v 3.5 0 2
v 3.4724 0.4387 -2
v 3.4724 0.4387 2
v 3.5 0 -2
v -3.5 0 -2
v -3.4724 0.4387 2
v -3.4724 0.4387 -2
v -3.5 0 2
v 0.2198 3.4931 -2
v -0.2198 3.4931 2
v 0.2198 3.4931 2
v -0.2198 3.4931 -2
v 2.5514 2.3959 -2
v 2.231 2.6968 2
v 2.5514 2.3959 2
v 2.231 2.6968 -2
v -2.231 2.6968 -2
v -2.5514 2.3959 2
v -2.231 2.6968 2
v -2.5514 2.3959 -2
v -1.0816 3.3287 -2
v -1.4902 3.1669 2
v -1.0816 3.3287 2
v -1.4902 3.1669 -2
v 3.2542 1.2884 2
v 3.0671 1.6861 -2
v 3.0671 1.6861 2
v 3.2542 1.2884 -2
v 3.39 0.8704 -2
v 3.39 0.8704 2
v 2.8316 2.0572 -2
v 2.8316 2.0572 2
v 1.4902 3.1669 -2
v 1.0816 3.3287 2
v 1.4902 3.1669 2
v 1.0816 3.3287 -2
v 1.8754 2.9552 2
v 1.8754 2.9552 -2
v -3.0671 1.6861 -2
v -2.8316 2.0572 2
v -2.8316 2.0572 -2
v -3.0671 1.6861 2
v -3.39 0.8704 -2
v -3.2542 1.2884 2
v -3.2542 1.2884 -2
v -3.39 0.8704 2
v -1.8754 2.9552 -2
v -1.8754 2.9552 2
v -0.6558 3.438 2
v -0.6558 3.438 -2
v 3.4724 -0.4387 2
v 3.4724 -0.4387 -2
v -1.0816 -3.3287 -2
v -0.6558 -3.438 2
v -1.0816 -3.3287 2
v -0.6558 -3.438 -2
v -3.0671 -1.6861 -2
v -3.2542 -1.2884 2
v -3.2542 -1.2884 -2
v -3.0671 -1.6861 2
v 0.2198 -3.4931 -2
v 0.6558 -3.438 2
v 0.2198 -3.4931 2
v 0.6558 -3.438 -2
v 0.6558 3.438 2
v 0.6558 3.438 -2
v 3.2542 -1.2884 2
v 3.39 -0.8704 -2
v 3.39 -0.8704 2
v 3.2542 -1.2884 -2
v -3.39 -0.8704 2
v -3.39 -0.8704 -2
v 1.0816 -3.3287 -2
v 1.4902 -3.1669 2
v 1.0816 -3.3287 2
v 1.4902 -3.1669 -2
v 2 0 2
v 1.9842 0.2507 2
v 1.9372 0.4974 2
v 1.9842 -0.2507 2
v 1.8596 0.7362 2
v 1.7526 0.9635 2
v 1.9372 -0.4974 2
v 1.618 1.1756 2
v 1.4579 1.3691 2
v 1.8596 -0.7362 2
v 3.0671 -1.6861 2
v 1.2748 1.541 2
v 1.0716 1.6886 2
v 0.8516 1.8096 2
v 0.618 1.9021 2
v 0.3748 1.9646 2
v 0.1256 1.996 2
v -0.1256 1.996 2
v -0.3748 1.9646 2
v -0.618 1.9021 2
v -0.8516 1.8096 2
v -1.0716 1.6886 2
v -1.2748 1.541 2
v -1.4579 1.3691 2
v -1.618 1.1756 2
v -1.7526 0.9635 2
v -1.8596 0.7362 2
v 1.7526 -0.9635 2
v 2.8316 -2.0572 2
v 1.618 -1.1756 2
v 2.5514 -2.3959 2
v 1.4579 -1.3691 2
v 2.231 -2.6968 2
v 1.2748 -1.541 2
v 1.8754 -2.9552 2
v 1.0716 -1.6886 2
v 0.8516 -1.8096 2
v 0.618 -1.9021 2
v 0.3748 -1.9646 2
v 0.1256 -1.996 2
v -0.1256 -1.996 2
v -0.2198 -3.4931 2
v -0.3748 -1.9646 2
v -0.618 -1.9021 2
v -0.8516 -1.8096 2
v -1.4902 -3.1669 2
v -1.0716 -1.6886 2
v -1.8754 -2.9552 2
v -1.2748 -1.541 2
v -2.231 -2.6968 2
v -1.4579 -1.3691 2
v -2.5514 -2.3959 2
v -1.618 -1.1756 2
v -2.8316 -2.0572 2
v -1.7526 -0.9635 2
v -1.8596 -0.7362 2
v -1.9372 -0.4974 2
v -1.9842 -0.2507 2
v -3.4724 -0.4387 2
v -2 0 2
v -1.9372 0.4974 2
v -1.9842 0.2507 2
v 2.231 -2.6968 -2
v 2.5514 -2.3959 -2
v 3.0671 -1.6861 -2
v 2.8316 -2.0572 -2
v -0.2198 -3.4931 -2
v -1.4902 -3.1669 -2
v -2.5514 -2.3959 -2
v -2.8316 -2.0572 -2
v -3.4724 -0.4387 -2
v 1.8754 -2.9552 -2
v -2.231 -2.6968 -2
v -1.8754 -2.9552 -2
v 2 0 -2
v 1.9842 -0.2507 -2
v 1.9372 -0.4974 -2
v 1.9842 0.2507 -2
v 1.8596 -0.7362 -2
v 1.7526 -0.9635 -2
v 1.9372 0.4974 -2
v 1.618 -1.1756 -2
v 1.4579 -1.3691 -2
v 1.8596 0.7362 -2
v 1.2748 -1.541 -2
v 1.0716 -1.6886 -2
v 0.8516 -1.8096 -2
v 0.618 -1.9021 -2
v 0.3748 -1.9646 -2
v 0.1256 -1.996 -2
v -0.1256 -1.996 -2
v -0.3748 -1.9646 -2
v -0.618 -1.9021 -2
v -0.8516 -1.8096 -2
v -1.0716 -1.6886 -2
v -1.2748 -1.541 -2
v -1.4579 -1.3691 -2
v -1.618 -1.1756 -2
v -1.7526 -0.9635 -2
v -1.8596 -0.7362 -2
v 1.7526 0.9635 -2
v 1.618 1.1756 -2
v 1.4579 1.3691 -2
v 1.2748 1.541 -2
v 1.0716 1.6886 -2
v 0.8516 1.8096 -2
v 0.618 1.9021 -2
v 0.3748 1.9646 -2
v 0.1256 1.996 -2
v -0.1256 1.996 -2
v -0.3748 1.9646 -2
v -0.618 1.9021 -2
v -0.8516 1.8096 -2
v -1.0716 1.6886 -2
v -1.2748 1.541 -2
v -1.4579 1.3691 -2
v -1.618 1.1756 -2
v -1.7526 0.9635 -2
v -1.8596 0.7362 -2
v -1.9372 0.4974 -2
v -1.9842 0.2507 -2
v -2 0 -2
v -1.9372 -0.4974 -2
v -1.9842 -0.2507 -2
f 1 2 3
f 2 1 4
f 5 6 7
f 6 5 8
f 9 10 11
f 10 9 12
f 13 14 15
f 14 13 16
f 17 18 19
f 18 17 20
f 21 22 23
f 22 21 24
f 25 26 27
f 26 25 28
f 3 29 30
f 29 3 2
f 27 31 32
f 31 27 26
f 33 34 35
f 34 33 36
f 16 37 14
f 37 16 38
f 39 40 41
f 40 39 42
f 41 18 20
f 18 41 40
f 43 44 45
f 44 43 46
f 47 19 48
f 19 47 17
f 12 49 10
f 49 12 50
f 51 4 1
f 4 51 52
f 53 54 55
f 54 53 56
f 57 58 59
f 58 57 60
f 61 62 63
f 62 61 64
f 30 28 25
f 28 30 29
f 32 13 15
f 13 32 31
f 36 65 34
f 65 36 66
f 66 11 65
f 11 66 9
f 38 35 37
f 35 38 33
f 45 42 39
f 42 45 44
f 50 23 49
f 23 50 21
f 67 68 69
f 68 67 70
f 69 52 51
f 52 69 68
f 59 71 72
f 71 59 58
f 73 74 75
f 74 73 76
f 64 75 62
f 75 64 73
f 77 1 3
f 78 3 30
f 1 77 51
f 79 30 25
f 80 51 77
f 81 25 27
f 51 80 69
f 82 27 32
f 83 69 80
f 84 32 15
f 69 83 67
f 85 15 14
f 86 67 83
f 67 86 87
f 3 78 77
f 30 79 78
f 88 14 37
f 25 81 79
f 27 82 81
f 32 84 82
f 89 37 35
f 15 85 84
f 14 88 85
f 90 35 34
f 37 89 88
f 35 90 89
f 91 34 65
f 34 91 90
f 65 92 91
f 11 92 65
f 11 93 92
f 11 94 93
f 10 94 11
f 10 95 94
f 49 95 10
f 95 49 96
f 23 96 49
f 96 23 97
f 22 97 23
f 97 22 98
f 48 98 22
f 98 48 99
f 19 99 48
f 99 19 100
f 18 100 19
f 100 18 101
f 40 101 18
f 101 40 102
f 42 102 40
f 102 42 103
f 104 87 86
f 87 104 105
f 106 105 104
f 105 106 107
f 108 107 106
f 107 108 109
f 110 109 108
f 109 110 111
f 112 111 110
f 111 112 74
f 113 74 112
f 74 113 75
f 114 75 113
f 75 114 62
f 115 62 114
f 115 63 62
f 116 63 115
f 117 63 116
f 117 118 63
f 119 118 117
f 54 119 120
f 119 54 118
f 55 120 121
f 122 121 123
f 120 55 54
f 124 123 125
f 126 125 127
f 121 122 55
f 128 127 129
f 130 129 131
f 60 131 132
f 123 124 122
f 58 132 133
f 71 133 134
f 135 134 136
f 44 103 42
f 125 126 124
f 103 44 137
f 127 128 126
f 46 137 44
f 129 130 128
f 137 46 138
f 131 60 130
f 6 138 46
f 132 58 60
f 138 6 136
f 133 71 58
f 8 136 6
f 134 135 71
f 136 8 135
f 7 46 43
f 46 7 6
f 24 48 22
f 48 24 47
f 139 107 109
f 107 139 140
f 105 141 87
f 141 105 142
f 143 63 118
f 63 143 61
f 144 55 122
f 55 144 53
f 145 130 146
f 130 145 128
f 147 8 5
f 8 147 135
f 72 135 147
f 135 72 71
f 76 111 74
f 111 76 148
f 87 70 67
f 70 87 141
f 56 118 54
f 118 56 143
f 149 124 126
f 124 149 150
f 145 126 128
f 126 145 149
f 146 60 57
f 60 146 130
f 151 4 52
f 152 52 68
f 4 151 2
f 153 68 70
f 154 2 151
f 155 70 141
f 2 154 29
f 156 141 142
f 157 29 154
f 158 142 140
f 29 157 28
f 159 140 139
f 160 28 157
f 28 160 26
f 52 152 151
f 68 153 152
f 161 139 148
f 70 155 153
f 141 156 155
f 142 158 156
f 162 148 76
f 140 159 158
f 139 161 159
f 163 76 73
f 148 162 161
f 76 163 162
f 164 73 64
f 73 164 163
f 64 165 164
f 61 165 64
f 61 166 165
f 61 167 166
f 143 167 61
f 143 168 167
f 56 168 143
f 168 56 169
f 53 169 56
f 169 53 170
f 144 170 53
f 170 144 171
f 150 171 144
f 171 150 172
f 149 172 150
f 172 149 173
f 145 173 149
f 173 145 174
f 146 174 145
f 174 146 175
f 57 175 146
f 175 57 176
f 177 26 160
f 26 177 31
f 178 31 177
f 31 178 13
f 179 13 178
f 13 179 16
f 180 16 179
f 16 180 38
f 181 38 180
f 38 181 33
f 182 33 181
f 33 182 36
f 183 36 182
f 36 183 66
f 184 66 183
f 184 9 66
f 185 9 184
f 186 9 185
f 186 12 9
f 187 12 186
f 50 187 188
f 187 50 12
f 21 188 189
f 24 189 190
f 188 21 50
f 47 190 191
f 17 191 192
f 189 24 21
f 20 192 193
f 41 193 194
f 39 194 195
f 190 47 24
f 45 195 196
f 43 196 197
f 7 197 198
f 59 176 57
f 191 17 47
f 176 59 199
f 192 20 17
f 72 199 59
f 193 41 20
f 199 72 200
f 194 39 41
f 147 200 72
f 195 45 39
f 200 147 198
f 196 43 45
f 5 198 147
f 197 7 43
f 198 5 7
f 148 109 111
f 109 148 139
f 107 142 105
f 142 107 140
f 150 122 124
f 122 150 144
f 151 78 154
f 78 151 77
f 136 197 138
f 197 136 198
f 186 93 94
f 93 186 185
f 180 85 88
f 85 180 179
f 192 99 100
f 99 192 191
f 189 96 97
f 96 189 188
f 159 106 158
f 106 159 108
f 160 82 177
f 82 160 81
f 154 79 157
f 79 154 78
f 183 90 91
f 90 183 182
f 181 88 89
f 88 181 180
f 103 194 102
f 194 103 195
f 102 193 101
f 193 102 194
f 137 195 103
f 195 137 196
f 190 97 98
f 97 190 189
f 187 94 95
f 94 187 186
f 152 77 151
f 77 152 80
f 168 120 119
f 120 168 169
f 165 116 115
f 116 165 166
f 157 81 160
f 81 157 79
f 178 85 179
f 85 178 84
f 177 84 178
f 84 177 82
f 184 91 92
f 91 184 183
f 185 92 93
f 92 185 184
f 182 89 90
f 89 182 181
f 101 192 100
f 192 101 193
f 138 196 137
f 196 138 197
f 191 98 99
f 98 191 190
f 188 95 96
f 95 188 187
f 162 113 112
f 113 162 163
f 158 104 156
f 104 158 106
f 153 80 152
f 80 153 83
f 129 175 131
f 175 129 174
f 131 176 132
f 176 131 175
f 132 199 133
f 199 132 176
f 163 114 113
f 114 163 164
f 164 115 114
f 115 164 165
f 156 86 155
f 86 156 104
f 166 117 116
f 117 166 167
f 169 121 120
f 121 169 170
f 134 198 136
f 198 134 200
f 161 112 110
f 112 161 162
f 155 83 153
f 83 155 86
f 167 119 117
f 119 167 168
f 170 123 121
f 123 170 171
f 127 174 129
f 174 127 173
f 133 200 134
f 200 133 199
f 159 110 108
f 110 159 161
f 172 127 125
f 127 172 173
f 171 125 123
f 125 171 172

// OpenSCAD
$fn = 50;


difference() {
	union() {
		translate(v = [0, 0, -2.0000000000]) {
			cylinder(h = 4, r = 3.5000000000);
		}
	}
	union() {
		translate(v = [0, 0, -100.0000000000]) {
			cylinder(h = 200, r = 2.0000000000);
		}
	}
}
